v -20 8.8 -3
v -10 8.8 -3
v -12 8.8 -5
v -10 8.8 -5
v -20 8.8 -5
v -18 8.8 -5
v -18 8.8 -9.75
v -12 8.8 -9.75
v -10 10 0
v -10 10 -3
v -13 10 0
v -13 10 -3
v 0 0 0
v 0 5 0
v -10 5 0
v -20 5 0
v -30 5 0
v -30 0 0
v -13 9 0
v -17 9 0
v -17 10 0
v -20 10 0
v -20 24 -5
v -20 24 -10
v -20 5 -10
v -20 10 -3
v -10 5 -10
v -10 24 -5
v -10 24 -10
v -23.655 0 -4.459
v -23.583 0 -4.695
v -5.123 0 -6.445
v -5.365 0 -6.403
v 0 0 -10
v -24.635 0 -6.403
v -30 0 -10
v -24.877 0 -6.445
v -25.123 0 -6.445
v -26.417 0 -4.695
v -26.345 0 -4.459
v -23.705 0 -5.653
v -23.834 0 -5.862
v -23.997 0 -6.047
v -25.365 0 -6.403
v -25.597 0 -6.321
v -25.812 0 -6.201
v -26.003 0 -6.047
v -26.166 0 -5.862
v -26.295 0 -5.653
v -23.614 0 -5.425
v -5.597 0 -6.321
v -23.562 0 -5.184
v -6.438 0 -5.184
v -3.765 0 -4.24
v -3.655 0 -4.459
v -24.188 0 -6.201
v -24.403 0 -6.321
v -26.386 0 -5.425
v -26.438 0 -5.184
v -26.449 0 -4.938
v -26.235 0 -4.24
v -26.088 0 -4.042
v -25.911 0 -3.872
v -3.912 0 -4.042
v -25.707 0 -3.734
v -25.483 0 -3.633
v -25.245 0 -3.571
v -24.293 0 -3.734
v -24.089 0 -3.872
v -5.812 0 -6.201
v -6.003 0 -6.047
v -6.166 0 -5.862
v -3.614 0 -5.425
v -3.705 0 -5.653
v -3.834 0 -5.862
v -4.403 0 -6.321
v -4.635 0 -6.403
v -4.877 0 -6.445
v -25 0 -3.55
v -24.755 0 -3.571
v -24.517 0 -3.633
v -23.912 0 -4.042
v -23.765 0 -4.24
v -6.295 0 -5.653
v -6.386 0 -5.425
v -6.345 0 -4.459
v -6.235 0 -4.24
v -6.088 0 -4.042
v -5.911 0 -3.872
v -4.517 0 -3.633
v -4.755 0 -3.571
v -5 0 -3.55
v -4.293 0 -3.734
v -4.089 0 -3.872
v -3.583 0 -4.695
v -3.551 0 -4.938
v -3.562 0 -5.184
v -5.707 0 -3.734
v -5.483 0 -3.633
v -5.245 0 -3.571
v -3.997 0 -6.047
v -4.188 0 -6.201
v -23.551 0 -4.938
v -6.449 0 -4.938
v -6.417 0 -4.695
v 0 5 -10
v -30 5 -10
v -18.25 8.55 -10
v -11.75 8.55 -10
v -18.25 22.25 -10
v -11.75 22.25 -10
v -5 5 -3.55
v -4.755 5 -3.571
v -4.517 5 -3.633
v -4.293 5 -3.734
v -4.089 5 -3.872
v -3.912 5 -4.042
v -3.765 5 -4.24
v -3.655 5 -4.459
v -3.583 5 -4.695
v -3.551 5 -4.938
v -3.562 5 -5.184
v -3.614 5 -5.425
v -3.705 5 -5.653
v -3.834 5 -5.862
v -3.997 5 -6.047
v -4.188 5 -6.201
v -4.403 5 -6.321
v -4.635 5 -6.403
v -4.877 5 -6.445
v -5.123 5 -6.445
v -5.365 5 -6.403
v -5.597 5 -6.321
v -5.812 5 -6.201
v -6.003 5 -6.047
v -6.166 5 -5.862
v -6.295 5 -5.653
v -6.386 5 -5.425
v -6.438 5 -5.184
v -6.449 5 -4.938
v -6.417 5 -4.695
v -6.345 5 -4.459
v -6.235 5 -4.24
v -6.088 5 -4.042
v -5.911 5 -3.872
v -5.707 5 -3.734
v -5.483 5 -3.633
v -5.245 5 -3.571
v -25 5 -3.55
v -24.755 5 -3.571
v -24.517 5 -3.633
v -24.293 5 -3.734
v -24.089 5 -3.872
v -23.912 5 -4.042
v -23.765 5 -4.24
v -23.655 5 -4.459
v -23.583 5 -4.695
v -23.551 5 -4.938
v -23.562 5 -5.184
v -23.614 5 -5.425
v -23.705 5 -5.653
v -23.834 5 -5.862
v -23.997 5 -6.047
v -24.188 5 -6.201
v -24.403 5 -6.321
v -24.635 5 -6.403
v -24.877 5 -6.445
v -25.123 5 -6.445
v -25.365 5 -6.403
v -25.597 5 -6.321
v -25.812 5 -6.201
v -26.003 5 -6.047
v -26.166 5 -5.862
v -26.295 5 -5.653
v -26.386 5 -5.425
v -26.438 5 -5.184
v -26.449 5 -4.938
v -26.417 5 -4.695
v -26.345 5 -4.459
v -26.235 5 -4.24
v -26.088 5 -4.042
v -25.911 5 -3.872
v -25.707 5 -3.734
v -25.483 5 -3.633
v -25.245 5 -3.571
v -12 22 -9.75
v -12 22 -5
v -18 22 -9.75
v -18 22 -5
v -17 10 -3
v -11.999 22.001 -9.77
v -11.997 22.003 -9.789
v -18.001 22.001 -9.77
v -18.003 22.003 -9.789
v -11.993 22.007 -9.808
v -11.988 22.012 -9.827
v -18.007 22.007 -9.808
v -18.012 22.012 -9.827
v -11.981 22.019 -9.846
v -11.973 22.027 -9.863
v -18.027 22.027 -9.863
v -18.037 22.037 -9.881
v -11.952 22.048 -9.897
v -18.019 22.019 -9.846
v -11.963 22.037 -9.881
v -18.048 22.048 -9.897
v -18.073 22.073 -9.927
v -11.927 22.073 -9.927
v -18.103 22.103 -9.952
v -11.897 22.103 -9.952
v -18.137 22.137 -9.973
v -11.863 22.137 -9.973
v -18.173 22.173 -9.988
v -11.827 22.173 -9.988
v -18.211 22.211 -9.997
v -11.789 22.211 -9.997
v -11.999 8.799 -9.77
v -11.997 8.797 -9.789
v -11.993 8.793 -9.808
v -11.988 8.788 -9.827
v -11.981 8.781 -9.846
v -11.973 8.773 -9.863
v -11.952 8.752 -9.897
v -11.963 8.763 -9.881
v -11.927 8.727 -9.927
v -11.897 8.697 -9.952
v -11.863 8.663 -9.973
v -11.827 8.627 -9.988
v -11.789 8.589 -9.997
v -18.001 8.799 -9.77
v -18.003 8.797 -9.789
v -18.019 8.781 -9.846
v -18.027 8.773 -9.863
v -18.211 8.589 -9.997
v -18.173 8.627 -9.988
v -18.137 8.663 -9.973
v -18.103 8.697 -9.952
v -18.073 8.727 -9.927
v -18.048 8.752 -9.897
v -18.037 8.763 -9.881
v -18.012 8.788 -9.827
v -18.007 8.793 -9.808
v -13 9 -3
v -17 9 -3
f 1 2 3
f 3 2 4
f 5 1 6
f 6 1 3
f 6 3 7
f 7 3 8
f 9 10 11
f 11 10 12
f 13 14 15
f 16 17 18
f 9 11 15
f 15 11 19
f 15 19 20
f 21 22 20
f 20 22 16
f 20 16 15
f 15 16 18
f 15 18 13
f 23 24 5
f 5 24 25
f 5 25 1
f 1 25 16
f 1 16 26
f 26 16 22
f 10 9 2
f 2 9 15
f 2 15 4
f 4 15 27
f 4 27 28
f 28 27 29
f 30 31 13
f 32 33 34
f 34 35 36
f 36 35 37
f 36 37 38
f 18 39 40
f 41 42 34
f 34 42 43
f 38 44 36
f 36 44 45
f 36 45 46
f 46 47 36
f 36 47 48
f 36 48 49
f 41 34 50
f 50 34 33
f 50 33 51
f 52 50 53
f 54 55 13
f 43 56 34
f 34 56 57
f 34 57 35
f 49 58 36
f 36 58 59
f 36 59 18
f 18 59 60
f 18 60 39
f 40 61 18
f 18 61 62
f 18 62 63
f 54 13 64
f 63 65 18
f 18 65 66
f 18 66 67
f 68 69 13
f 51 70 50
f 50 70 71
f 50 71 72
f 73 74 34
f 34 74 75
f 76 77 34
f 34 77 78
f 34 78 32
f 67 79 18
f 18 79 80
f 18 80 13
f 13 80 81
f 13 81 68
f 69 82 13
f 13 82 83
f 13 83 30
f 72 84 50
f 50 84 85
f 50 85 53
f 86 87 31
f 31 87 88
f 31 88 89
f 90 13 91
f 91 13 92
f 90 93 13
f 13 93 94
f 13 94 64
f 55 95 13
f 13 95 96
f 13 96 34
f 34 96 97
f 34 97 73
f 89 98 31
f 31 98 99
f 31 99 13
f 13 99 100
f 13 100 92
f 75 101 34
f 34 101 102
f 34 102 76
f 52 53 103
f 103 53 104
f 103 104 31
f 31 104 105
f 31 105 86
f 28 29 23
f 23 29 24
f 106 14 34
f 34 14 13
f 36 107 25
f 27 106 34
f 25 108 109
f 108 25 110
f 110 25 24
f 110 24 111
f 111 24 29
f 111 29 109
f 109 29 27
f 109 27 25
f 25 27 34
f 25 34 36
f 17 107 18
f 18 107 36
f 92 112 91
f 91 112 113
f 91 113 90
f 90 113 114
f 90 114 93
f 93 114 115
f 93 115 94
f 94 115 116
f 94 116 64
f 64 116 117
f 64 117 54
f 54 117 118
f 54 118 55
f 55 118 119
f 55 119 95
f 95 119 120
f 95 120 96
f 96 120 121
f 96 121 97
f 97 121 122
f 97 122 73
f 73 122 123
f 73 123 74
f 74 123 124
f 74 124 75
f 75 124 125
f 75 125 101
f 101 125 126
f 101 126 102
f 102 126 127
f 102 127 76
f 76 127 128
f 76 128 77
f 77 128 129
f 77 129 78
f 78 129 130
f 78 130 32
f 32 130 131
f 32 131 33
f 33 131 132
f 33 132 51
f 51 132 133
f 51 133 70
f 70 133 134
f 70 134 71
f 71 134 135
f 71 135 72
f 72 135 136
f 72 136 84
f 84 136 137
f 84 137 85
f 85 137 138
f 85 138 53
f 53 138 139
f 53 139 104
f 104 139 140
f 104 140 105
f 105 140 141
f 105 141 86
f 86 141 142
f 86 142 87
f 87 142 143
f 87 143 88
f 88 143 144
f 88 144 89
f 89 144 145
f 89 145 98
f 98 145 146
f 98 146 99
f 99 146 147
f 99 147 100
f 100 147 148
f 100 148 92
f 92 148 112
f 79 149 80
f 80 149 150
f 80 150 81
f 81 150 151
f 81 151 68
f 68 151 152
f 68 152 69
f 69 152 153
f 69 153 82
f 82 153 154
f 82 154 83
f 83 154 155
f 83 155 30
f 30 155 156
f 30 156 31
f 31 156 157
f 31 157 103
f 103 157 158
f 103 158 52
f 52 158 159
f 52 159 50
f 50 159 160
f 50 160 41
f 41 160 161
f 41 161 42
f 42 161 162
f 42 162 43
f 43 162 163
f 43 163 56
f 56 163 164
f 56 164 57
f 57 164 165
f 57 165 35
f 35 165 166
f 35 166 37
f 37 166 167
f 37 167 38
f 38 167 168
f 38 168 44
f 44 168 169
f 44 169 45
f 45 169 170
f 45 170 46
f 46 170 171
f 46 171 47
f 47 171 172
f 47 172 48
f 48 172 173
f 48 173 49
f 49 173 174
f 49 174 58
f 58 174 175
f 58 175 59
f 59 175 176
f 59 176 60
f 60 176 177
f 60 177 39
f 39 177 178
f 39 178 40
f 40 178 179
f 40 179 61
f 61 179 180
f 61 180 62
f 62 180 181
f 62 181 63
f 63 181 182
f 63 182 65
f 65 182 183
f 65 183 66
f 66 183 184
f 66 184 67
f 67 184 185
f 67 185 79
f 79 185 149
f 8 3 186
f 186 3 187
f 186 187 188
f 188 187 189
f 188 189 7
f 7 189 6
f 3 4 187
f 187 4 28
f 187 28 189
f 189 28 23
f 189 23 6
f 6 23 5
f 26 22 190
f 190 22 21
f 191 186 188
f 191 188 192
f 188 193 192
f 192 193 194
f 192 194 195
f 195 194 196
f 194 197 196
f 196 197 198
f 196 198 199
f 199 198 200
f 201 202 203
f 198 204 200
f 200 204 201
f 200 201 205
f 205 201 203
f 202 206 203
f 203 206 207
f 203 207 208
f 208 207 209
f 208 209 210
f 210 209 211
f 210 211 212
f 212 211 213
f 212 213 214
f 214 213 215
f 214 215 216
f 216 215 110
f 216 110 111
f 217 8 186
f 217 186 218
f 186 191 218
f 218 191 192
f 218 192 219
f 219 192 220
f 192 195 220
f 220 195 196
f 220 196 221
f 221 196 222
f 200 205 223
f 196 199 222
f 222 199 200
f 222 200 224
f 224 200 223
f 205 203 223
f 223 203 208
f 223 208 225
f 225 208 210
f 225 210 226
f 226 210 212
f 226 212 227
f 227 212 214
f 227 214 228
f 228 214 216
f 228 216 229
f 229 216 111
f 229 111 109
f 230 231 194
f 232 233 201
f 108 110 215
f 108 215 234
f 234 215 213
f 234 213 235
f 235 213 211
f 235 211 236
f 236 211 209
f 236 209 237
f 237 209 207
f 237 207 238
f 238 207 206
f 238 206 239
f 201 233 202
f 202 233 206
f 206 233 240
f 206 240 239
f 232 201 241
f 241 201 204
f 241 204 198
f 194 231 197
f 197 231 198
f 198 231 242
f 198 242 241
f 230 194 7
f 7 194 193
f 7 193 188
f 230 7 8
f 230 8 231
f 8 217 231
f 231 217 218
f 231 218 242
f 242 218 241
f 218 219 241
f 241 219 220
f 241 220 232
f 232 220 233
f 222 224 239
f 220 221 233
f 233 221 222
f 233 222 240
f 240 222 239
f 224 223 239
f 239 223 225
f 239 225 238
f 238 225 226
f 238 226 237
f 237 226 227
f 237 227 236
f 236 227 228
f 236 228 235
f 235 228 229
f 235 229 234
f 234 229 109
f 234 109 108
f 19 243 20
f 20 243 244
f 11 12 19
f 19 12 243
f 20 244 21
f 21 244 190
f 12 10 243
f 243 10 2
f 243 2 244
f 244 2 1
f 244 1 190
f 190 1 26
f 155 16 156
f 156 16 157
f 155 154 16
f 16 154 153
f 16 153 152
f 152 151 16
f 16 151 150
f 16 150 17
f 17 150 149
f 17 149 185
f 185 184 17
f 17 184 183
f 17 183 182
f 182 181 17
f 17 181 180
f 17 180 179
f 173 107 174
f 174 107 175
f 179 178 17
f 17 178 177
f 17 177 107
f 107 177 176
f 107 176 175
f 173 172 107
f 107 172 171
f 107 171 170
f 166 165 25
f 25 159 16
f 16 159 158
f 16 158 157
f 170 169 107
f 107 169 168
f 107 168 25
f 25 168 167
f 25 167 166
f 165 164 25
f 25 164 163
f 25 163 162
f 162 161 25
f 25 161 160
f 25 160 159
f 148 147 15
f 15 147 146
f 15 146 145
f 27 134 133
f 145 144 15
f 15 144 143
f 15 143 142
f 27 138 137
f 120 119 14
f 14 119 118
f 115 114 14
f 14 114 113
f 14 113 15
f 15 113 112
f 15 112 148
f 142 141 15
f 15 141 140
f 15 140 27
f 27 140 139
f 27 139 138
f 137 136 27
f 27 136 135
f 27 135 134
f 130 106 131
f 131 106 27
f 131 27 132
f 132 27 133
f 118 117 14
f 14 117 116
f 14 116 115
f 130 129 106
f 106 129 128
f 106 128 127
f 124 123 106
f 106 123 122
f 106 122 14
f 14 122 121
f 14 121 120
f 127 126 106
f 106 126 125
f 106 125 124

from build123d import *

# Parameters (mm, degrees)
EXTRUDE_1_DEPTH     = 4
SKETCH_2_W          = 10
SKETCH_2_H          = 15
EXTRUDE_2_DEPTH     = 20
SKETCH_3_R          = 1.45
CUT_EXTRUDE_1_DEPTH = 20
SKETCH_4_W          = 6
SKETCH_4_H          = 13.2
CUT_EXTRUDE_2_DEPTH = 9.5
SKETCH_6_R          = 0.75
CUT_EXTRUDE_4_DEPTH = 3.5
SKETCH_7_W          = 10
SKETCH_7_H          = 24
CUT_EXTRUDE_5_DEPTH = 5
SKETCH_9_W          = 3
SKETCH_9_H          = 12
CUT_EXTRUDE_6_DEPTH = 10
SKETCH_11_W         = 1.5
SKETCH_11_H         = 12
CUT_EXTRUDE_7_DEPTH = 10
CUT_EXTRUDE_8_REACH = 41.699
SKETCH_13_W         = 10
SKETCH_13_H         = 5
SKETCH_19_W         = 10
SKETCH_19_H         = 2.4
EXTRUDE_6_DEPTH     = 4.8
SKETCH_20_W         = 10
SKETCH_20_H         = 2.6
EXTRUDE_7_DEPTH     = 6
FILLET_17_R         = 0.25
SKETCH_21_W         = 4
SKETCH_21_H         = 1
CUT_EXTRUDE_9_DEPTH = 5.2
EXTRUDE_8_DEPTH     = 0.4
EXTRUDE_START       = 1
SKETCH_29_W         = 10
SKETCH_29_H         = 10
SKETCH_29_R         = 1.45
EXTRUDE_9_DEPTH     = 1


with BuildPart() as part:
    # 草图1 → 凸台-拉伸1 (new body)
    with BuildSketch(Plane(origin=(0, 0, 0), x_dir=(1, 0, 0), z_dir=(0, 1, 0))):
        Polygon((-20, 0), (-20, -5), (-10, -5), (-10, 0), (0, 0), (0, 10), (-30, 10), (-30, 0), align=None)
    extrude(amount=EXTRUDE_1_DEPTH)

    # 草图2 → 凸台-拉伸2 (add)
    with BuildSketch(Plane(origin=(0, 4, 0), x_dir=(1, 0, 0), z_dir=(0, 1, 0))):
        with Locations((-15, 2.5)):
            Rectangle(SKETCH_2_W, SKETCH_2_H)
    extrude(amount=EXTRUDE_2_DEPTH)

    # 草图3 → 切除-拉伸1 (cut)
    with BuildSketch(Plane(origin=(0, 4, 0), x_dir=(1, 0, 0), z_dir=(0, 1, 0))):
        with Locations(Location((-25, 5, 0), (0, 0, 270))):
            Circle(SKETCH_3_R)
        with Locations(Location((-5, 5, 0), (0, 0, 270))):
            Circle(SKETCH_3_R)
    extrude(amount=-CUT_EXTRUDE_1_DEPTH, mode=Mode.SUBTRACT)

    # 草图4 → 切除-拉伸2 (cut)
    with BuildSketch(Plane(origin=(0, 0, -10), x_dir=(-1, 0, 0), z_dir=(0, 0, -1))):
        with Locations((15, 15.4)):
            Rectangle(SKETCH_4_W, SKETCH_4_H)
    extrude(amount=-CUT_EXTRUDE_2_DEPTH, mode=Mode.SUBTRACT)

    # 草图6 → 切除-拉伸4 (cut)
    with BuildSketch(Plane(origin=(0, 0, -0.5), x_dir=(-1, 0, 0), z_dir=(0, 0, -1))):
        with Locations((15, 20.68)):
            Circle(SKETCH_6_R)
        with Locations((15, 10.52)):
            Circle(SKETCH_6_R)
        with Locations((15, 15.6)):
            Circle(SKETCH_6_R)
    extrude(amount=-CUT_EXTRUDE_4_DEPTH, mode=Mode.SUBTRACT)

    # 草图7 → 切除-拉伸5 (cut)
    with BuildSketch(Plane.XY.offset(5)):
        with Locations((-15, 12)):
            Rectangle(SKETCH_7_W, SKETCH_7_H)
    extrude(amount=-CUT_EXTRUDE_5_DEPTH, mode=Mode.SUBTRACT)

    # 草图9 → 切除-拉伸6 (cut)
    with BuildSketch(Plane(origin=(0, 0, -0.5), x_dir=(-1, 0, 0), z_dir=(0, 0, -1))):
        with Locations((15, 15.6)):
            Rectangle(SKETCH_9_W, SKETCH_9_H)
    extrude(amount=-CUT_EXTRUDE_6_DEPTH, mode=Mode.SUBTRACT)

    # 草图11 → 切除-拉伸7 (cut)
    with BuildSketch(Plane(origin=(0, 0, -0.5), x_dir=(-1, 0, 0), z_dir=(0, 0, -1))):
        with Locations((17.25, 15.6)):
            Rectangle(SKETCH_11_W, SKETCH_11_H)
        with Locations((12.75, 15.6)):
            Rectangle(SKETCH_11_W, SKETCH_11_H)
    extrude(amount=-CUT_EXTRUDE_7_DEPTH, mode=Mode.SUBTRACT)

    # 切除-拉伸8: up to this face of the body (flat: up to its plane)
    cut_extrude_8_end = Plane(part.part.faces().sort_by_distance((-5, 4, -9.858578644))[0])
    # 草图13 → 切除-拉伸8 (cut, up to the picked face)
    with BuildSketch(Plane(origin=(0, 24, 0), x_dir=(1, 0, 0), z_dir=(0, 1, 0)), mode=Mode.PRIVATE) as cut_extrude_8_sk1:
        with Locations((-15, 2.5)):
            Rectangle(SKETCH_13_W, SKETCH_13_H)
    cut_extrude_8_tool1 = split(extrude(cut_extrude_8_sk1.sketch, amount=-CUT_EXTRUDE_8_REACH, mode=Mode.PRIVATE), bisect_by=cut_extrude_8_end, keep=Keep.BOTH, mode=Mode.PRIVATE)
    add(cut_extrude_8_tool1.solids().sort_by(Axis((-15, 24, -2.5), (0, -1, 0)))[0], mode=Mode.SUBTRACT)

    # 草图19 → 凸台-拉伸6 (add)
    with BuildSketch(Plane(origin=(0, 4, 0), x_dir=(1, 0, 0), z_dir=(0, 1, 0))):
        with Locations((-15, 3.8)):
            Rectangle(SKETCH_19_W, SKETCH_19_H)
    extrude(amount=EXTRUDE_6_DEPTH)

    # 草图20 → 凸台-拉伸7 (add)
    with BuildSketch(Plane(origin=(0, 4, 0), x_dir=(1, 0, 0), z_dir=(0, 1, 0))):
        with Locations((-15, 1.3)):
            Rectangle(SKETCH_20_W, SKETCH_20_H)
    extrude(amount=EXTRUDE_7_DEPTH)

    # 圆角17
    fillet_17_edges = [part.edges().sort_by_distance(p)[0] for p in [
        (-12, 15.4, -10),
        (-15, 8.8, -10),
        (-18, 15.4, -10),
        (-15, 22, -10),
    ]]
    fillet(fillet_17_edges, radius=FILLET_17_R)

    # 草图21 → 切除-拉伸9 (cut)
    with BuildSketch(Plane.XY):
        with Locations((-15, 9.5)):
            Rectangle(SKETCH_21_W, SKETCH_21_H)
    extrude(amount=-CUT_EXTRUDE_9_DEPTH, mode=Mode.SUBTRACT)

    # 草图22 → 凸台-拉伸8 (add)
    with BuildSketch(Plane(origin=(0, 0, -2.6), x_dir=(-1, 0, 0), z_dir=(0, 0, -1))):
        Polygon((17, 9), (13, 9), (13, 10), (10, 10), (10, 8.8), (20, 8.8), (20, 10), (17, 10), align=None)
    extrude(amount=EXTRUDE_8_DEPTH)

    # 草图29 → 凸台-拉伸9 (add)
    # profile 1 of 2: a face of its own
    with BuildSketch(Plane(origin=(0, 4, 0), x_dir=(1, 0, 0), z_dir=(0, 1, 0)).offset(EXTRUDE_START)):
        with Locations((-25, 5)):
            Rectangle(SKETCH_29_W, SKETCH_29_H)
        with Locations(Location((-25, 5, 0), (0, 0, 270))):
            Circle(SKETCH_29_R, mode=Mode.SUBTRACT)
    # profile 2 of 2: a face of its own
    with BuildSketch(Plane(origin=(0, 4, 0), x_dir=(1, 0, 0), z_dir=(0, 1, 0)).offset(EXTRUDE_START)):
        with Locations((-5, 5)):
            Rectangle(SKETCH_29_W, SKETCH_29_H)
        with Locations(Location((-5, 5, 0), (0, 0, 270))):
            Circle(SKETCH_29_R, mode=Mode.SUBTRACT)
    extrude(amount=-EXTRUDE_9_DEPTH)


solid = part.part
